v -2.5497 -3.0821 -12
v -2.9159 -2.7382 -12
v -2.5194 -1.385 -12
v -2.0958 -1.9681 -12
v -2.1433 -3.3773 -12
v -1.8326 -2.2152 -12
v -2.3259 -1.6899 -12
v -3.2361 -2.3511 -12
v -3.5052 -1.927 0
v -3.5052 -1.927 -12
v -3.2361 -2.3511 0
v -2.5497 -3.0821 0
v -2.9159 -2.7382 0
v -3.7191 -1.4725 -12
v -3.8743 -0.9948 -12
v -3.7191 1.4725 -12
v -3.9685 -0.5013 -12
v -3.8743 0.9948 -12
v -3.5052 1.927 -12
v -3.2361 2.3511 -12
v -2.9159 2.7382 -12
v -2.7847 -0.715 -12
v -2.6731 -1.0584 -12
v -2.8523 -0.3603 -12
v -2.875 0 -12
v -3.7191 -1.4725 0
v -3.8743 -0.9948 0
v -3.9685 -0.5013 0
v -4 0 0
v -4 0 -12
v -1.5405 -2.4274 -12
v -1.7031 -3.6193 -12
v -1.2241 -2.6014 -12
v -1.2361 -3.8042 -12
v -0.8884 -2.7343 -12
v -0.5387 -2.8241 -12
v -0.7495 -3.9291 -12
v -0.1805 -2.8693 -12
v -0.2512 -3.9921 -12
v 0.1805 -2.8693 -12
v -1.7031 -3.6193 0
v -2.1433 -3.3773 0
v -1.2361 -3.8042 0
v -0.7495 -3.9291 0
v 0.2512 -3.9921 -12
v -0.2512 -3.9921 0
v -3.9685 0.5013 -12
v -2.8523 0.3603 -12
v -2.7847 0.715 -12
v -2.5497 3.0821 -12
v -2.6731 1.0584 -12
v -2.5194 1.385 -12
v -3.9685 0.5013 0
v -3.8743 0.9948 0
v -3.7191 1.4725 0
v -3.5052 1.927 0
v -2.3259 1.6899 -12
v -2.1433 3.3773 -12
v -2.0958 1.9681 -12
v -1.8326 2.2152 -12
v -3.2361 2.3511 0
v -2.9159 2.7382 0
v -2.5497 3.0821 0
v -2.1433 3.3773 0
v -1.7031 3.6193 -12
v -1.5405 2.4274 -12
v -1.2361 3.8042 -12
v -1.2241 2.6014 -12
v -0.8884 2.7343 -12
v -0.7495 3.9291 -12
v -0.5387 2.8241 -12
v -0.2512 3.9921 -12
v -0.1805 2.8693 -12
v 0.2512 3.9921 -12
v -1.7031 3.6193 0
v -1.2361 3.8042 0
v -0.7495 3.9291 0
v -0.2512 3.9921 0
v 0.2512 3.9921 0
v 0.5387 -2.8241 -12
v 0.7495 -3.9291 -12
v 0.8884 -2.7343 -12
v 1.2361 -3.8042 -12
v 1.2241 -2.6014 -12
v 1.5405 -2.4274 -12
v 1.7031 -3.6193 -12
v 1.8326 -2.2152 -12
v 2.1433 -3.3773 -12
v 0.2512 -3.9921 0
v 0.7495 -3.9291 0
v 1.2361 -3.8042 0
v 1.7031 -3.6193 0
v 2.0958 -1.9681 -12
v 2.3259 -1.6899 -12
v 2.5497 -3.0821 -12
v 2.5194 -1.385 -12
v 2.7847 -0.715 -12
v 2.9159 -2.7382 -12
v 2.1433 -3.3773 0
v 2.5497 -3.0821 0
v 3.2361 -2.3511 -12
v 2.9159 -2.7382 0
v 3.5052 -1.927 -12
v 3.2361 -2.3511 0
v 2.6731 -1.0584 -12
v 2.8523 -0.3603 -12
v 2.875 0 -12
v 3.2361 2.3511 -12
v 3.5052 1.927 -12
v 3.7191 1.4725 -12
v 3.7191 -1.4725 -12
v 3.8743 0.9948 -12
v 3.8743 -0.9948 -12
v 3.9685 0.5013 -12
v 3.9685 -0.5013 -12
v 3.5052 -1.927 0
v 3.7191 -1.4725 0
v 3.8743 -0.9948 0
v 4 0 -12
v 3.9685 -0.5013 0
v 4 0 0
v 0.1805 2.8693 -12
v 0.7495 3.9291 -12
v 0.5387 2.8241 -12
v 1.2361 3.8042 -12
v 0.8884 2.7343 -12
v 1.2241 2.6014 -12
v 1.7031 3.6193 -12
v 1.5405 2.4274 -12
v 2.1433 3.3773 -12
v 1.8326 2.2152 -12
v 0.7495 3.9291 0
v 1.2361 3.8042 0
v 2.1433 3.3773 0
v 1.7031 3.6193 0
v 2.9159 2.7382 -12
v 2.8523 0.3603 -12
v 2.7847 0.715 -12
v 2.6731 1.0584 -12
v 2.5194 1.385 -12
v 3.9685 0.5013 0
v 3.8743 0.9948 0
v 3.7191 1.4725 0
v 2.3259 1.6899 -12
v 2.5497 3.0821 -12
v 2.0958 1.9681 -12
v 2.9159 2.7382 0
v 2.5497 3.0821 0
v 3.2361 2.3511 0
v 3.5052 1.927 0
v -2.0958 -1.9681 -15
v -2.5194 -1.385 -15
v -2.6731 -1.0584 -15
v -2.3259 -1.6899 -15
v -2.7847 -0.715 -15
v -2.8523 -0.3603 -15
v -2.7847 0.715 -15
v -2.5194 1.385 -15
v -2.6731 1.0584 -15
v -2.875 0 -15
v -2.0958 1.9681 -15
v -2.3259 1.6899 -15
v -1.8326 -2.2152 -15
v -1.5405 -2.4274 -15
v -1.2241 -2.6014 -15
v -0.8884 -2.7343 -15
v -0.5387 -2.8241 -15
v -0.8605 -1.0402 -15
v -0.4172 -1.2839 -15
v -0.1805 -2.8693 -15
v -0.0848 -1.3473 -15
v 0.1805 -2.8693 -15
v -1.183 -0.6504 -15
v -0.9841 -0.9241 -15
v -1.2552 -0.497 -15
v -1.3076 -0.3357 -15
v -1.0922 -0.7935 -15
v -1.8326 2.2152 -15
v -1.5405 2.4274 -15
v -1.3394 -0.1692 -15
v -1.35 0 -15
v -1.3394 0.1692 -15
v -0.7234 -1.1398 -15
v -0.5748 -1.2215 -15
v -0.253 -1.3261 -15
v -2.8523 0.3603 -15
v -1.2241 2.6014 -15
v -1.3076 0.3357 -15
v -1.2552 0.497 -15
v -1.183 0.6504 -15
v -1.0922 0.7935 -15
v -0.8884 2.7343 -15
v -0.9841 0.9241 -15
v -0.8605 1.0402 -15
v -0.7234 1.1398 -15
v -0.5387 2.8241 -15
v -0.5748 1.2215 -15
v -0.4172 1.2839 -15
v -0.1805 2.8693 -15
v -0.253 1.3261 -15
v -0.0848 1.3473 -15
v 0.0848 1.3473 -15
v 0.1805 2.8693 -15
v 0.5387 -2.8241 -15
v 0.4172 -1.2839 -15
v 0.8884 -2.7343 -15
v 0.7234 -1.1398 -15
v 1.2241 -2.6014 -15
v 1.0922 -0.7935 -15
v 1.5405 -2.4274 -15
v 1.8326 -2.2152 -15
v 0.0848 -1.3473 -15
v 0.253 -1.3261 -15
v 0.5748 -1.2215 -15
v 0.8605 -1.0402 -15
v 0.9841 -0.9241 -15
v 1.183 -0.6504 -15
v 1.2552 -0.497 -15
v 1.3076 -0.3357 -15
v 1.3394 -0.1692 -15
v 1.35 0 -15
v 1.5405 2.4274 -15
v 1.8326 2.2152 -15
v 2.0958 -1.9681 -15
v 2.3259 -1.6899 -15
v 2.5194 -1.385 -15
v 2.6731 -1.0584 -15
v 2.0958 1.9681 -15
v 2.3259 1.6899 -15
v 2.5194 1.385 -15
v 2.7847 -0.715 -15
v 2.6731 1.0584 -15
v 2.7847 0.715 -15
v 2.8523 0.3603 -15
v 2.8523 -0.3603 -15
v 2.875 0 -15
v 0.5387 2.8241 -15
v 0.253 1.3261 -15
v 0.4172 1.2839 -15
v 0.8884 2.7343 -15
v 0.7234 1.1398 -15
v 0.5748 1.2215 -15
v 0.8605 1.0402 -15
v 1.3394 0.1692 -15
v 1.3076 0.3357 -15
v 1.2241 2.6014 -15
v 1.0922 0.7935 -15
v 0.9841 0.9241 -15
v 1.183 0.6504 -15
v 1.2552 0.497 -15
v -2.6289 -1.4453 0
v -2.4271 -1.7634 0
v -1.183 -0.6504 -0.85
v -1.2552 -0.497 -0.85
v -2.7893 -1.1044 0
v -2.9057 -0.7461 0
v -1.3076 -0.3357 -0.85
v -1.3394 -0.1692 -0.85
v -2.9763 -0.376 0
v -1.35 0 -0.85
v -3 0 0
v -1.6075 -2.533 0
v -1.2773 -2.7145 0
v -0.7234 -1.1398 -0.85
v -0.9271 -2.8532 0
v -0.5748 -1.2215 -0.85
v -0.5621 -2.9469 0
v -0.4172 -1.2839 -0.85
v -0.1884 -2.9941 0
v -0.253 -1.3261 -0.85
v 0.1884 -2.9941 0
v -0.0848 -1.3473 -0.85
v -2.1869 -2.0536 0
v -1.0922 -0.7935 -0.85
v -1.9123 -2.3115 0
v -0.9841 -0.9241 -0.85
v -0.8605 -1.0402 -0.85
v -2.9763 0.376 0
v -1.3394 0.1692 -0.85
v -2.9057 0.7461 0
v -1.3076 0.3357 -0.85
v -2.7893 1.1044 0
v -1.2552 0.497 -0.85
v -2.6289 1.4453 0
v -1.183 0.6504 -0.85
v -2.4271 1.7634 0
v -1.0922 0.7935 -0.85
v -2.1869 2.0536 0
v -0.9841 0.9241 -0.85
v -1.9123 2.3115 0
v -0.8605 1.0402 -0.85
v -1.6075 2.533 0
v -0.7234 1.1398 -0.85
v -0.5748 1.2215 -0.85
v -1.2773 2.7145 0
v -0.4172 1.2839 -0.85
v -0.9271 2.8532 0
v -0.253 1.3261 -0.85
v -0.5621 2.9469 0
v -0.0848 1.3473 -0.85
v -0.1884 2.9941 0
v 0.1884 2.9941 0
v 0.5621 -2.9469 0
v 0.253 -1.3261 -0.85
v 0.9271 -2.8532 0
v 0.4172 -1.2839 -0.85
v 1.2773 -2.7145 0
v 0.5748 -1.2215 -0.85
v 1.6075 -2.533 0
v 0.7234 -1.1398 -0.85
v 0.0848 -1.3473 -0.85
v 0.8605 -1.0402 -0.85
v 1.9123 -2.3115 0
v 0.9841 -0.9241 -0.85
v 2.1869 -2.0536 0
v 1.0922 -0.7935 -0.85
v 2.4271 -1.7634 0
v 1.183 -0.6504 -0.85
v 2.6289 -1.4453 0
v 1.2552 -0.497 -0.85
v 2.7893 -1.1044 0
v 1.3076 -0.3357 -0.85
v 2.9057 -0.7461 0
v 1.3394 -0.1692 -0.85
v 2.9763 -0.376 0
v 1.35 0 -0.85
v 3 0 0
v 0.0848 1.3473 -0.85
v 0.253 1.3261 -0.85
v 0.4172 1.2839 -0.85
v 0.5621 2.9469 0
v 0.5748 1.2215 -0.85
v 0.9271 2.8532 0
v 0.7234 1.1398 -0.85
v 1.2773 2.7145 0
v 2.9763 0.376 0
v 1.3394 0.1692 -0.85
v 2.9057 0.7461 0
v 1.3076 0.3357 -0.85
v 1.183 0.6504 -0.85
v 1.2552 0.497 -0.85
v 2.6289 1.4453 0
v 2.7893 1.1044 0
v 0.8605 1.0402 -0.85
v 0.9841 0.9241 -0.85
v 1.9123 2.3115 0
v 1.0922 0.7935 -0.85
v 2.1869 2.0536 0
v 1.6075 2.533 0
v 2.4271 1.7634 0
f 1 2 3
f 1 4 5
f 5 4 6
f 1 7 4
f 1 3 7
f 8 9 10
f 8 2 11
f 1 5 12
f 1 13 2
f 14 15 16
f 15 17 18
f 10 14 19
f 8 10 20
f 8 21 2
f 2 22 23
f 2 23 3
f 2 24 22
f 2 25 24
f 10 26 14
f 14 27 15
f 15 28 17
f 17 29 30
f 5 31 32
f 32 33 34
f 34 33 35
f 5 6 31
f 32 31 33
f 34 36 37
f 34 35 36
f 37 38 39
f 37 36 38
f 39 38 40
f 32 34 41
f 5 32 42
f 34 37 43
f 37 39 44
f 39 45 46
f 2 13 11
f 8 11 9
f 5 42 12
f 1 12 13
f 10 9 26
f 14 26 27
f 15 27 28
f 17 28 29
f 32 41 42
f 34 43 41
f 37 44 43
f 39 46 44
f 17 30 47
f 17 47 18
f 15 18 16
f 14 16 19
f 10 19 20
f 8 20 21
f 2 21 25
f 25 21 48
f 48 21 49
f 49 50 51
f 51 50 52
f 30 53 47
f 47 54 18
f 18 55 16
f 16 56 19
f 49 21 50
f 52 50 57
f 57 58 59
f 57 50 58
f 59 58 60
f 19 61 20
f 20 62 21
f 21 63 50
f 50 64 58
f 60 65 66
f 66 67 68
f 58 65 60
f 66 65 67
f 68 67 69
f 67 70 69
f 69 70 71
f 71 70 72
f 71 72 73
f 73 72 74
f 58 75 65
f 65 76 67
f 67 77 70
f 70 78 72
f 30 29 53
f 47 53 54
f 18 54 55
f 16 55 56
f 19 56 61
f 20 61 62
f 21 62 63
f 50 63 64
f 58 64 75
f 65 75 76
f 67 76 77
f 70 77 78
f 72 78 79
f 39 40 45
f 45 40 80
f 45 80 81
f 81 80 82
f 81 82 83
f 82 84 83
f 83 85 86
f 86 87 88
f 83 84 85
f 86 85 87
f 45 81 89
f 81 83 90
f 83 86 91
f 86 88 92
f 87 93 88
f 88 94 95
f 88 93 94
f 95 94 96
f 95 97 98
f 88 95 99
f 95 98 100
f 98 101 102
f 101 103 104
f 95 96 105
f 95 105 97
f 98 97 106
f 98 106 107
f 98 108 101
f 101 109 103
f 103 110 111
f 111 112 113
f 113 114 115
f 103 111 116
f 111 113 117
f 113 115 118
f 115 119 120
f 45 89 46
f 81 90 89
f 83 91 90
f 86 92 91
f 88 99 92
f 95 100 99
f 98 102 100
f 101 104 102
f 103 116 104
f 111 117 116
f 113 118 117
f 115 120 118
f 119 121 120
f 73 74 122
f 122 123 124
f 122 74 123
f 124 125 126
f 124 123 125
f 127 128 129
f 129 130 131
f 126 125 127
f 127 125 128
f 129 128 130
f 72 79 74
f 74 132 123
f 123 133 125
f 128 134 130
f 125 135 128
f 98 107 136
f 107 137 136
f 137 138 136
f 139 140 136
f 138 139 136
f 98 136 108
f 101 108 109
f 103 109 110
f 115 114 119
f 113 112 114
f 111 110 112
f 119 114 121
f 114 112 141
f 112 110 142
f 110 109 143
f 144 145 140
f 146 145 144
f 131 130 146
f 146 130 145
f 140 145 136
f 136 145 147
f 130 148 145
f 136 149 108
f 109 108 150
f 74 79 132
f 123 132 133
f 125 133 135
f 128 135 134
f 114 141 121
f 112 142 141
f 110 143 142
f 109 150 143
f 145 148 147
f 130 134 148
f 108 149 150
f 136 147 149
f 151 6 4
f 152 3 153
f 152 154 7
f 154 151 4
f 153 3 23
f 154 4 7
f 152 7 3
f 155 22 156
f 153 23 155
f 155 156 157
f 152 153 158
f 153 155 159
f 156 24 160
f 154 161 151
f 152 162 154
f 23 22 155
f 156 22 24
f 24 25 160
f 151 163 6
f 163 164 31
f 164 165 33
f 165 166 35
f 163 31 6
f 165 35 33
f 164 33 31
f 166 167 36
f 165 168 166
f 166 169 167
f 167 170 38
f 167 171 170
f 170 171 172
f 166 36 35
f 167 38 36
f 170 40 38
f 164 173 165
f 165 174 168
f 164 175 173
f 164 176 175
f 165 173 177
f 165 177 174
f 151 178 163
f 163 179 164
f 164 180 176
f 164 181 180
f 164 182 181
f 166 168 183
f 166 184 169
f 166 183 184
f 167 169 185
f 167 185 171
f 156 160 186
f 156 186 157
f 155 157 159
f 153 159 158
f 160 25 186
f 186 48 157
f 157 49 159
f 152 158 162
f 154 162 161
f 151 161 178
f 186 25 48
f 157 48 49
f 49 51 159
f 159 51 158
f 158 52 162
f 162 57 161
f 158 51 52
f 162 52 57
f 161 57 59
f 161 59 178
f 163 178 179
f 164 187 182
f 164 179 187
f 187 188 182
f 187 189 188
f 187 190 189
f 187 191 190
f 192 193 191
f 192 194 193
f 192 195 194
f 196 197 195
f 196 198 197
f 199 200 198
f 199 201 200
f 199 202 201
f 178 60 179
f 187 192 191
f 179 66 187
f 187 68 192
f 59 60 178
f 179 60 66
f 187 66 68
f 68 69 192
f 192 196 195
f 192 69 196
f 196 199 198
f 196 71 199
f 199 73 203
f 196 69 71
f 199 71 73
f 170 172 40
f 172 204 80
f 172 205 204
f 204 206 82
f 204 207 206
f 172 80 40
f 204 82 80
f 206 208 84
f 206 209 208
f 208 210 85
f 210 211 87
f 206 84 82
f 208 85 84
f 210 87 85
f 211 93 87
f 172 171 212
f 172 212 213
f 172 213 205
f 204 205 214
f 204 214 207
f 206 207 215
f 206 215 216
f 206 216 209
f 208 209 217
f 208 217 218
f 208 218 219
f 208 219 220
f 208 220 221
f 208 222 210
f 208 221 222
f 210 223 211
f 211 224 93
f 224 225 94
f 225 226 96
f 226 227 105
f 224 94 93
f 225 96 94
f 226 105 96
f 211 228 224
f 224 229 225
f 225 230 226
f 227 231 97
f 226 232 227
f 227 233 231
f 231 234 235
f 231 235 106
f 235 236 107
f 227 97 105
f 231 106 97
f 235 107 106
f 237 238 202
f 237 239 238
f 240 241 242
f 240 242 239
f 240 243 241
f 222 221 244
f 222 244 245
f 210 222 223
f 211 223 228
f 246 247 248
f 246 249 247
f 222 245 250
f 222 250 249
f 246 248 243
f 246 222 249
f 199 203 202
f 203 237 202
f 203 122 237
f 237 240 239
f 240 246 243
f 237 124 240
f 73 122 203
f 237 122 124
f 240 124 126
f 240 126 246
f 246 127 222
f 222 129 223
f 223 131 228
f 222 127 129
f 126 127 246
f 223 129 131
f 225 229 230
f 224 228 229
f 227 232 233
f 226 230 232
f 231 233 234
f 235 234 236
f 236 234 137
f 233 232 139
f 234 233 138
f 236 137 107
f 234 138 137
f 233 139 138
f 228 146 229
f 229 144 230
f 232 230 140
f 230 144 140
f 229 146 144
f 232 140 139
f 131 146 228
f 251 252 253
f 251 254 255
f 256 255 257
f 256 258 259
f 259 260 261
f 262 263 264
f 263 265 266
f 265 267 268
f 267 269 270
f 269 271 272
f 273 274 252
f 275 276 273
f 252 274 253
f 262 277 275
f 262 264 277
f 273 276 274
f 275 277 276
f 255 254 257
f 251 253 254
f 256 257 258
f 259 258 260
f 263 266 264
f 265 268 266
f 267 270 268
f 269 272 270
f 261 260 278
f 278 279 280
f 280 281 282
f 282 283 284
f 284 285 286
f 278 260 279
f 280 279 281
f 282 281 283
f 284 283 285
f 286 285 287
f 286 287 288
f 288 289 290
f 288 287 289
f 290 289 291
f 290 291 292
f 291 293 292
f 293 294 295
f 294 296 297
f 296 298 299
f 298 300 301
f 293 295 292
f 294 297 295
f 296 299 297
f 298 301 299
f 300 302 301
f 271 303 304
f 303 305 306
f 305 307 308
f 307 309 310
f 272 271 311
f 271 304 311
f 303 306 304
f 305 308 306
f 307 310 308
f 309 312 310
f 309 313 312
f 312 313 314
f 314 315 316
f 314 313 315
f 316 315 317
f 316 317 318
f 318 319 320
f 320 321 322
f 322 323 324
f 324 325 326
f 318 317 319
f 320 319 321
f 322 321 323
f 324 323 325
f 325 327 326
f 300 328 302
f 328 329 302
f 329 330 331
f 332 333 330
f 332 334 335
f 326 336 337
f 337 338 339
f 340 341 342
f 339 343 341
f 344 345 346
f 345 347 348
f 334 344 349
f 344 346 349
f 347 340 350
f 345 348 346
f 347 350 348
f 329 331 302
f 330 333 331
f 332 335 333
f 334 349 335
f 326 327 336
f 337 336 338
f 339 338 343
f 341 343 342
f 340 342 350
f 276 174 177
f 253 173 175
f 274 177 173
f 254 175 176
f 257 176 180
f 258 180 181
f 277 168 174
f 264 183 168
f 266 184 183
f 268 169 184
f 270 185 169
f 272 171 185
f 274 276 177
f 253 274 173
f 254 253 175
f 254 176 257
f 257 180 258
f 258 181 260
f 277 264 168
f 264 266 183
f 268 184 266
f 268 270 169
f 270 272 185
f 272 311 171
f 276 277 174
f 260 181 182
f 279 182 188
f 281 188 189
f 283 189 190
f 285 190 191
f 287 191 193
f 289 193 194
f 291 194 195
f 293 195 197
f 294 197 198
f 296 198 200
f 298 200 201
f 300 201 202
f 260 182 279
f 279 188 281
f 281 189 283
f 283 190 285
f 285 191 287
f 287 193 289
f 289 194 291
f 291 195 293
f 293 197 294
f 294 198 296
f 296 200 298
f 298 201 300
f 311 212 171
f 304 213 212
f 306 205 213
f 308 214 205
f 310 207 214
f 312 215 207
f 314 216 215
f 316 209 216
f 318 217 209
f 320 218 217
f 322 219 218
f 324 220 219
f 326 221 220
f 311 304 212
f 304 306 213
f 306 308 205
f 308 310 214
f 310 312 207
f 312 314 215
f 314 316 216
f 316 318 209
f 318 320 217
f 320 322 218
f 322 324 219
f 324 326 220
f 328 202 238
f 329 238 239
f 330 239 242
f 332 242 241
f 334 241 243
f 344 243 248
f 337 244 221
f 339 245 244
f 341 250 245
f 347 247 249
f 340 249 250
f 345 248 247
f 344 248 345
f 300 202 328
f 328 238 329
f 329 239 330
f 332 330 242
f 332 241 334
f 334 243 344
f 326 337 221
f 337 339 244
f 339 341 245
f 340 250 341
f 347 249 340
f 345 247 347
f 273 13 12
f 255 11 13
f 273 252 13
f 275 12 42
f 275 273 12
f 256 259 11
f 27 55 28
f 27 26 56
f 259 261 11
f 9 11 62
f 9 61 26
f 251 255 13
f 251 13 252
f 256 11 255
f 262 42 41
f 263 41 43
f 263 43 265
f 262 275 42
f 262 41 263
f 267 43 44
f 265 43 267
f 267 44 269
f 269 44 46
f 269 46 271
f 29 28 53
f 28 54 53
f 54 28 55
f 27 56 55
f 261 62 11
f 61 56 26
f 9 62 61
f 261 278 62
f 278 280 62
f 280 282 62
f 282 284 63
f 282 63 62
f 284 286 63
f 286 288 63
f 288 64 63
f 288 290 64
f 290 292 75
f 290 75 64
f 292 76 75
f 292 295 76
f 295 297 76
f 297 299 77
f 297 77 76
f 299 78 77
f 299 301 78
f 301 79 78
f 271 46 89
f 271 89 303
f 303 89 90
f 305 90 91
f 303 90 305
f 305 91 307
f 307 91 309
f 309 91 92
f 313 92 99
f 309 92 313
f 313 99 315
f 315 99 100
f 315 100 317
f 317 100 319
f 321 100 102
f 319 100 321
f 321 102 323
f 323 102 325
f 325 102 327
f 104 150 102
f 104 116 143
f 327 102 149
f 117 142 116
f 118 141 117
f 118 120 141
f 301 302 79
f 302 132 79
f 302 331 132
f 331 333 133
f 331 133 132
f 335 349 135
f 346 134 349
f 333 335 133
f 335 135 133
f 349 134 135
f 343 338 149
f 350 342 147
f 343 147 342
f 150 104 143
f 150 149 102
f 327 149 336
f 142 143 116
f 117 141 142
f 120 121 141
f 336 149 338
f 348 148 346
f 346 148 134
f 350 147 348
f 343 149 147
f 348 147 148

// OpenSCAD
$fn = 50;

difference() {
	union() {
		translate(v = [0, 0, -12.0]) {
			cylinder(h = 15, r = 4.0);
		}
		#translate(v = [0, 0, -15.0]) {
			cylinder(h = 15, r = 2.875);
		}
	}
	union() {
		translate(v = [0, 0, 0]) {
			rotate(a = [0, 0, 0]) {
				difference() {
					union() {
						translate(v = [0, 0, -15.0]) {
							cylinder(h = 15, r = 1.0);
						}
						translate(v = [0, 0, -0.85]) {
							cylinder(h = 0.85, r1 = 1.35, r2 = 3.0);
						}
						translate(v = [0, 0, -15.0]) {
							cylinder(h = 15, r = 1.35);
						}
						translate(v = [0, 0, -15.0]) {
							cylinder(h = 15, r = 1.0);
						}
					}
					union();
				}
			}
		}
		#cylinder(h = 3, r = 5.0);
	}
}
